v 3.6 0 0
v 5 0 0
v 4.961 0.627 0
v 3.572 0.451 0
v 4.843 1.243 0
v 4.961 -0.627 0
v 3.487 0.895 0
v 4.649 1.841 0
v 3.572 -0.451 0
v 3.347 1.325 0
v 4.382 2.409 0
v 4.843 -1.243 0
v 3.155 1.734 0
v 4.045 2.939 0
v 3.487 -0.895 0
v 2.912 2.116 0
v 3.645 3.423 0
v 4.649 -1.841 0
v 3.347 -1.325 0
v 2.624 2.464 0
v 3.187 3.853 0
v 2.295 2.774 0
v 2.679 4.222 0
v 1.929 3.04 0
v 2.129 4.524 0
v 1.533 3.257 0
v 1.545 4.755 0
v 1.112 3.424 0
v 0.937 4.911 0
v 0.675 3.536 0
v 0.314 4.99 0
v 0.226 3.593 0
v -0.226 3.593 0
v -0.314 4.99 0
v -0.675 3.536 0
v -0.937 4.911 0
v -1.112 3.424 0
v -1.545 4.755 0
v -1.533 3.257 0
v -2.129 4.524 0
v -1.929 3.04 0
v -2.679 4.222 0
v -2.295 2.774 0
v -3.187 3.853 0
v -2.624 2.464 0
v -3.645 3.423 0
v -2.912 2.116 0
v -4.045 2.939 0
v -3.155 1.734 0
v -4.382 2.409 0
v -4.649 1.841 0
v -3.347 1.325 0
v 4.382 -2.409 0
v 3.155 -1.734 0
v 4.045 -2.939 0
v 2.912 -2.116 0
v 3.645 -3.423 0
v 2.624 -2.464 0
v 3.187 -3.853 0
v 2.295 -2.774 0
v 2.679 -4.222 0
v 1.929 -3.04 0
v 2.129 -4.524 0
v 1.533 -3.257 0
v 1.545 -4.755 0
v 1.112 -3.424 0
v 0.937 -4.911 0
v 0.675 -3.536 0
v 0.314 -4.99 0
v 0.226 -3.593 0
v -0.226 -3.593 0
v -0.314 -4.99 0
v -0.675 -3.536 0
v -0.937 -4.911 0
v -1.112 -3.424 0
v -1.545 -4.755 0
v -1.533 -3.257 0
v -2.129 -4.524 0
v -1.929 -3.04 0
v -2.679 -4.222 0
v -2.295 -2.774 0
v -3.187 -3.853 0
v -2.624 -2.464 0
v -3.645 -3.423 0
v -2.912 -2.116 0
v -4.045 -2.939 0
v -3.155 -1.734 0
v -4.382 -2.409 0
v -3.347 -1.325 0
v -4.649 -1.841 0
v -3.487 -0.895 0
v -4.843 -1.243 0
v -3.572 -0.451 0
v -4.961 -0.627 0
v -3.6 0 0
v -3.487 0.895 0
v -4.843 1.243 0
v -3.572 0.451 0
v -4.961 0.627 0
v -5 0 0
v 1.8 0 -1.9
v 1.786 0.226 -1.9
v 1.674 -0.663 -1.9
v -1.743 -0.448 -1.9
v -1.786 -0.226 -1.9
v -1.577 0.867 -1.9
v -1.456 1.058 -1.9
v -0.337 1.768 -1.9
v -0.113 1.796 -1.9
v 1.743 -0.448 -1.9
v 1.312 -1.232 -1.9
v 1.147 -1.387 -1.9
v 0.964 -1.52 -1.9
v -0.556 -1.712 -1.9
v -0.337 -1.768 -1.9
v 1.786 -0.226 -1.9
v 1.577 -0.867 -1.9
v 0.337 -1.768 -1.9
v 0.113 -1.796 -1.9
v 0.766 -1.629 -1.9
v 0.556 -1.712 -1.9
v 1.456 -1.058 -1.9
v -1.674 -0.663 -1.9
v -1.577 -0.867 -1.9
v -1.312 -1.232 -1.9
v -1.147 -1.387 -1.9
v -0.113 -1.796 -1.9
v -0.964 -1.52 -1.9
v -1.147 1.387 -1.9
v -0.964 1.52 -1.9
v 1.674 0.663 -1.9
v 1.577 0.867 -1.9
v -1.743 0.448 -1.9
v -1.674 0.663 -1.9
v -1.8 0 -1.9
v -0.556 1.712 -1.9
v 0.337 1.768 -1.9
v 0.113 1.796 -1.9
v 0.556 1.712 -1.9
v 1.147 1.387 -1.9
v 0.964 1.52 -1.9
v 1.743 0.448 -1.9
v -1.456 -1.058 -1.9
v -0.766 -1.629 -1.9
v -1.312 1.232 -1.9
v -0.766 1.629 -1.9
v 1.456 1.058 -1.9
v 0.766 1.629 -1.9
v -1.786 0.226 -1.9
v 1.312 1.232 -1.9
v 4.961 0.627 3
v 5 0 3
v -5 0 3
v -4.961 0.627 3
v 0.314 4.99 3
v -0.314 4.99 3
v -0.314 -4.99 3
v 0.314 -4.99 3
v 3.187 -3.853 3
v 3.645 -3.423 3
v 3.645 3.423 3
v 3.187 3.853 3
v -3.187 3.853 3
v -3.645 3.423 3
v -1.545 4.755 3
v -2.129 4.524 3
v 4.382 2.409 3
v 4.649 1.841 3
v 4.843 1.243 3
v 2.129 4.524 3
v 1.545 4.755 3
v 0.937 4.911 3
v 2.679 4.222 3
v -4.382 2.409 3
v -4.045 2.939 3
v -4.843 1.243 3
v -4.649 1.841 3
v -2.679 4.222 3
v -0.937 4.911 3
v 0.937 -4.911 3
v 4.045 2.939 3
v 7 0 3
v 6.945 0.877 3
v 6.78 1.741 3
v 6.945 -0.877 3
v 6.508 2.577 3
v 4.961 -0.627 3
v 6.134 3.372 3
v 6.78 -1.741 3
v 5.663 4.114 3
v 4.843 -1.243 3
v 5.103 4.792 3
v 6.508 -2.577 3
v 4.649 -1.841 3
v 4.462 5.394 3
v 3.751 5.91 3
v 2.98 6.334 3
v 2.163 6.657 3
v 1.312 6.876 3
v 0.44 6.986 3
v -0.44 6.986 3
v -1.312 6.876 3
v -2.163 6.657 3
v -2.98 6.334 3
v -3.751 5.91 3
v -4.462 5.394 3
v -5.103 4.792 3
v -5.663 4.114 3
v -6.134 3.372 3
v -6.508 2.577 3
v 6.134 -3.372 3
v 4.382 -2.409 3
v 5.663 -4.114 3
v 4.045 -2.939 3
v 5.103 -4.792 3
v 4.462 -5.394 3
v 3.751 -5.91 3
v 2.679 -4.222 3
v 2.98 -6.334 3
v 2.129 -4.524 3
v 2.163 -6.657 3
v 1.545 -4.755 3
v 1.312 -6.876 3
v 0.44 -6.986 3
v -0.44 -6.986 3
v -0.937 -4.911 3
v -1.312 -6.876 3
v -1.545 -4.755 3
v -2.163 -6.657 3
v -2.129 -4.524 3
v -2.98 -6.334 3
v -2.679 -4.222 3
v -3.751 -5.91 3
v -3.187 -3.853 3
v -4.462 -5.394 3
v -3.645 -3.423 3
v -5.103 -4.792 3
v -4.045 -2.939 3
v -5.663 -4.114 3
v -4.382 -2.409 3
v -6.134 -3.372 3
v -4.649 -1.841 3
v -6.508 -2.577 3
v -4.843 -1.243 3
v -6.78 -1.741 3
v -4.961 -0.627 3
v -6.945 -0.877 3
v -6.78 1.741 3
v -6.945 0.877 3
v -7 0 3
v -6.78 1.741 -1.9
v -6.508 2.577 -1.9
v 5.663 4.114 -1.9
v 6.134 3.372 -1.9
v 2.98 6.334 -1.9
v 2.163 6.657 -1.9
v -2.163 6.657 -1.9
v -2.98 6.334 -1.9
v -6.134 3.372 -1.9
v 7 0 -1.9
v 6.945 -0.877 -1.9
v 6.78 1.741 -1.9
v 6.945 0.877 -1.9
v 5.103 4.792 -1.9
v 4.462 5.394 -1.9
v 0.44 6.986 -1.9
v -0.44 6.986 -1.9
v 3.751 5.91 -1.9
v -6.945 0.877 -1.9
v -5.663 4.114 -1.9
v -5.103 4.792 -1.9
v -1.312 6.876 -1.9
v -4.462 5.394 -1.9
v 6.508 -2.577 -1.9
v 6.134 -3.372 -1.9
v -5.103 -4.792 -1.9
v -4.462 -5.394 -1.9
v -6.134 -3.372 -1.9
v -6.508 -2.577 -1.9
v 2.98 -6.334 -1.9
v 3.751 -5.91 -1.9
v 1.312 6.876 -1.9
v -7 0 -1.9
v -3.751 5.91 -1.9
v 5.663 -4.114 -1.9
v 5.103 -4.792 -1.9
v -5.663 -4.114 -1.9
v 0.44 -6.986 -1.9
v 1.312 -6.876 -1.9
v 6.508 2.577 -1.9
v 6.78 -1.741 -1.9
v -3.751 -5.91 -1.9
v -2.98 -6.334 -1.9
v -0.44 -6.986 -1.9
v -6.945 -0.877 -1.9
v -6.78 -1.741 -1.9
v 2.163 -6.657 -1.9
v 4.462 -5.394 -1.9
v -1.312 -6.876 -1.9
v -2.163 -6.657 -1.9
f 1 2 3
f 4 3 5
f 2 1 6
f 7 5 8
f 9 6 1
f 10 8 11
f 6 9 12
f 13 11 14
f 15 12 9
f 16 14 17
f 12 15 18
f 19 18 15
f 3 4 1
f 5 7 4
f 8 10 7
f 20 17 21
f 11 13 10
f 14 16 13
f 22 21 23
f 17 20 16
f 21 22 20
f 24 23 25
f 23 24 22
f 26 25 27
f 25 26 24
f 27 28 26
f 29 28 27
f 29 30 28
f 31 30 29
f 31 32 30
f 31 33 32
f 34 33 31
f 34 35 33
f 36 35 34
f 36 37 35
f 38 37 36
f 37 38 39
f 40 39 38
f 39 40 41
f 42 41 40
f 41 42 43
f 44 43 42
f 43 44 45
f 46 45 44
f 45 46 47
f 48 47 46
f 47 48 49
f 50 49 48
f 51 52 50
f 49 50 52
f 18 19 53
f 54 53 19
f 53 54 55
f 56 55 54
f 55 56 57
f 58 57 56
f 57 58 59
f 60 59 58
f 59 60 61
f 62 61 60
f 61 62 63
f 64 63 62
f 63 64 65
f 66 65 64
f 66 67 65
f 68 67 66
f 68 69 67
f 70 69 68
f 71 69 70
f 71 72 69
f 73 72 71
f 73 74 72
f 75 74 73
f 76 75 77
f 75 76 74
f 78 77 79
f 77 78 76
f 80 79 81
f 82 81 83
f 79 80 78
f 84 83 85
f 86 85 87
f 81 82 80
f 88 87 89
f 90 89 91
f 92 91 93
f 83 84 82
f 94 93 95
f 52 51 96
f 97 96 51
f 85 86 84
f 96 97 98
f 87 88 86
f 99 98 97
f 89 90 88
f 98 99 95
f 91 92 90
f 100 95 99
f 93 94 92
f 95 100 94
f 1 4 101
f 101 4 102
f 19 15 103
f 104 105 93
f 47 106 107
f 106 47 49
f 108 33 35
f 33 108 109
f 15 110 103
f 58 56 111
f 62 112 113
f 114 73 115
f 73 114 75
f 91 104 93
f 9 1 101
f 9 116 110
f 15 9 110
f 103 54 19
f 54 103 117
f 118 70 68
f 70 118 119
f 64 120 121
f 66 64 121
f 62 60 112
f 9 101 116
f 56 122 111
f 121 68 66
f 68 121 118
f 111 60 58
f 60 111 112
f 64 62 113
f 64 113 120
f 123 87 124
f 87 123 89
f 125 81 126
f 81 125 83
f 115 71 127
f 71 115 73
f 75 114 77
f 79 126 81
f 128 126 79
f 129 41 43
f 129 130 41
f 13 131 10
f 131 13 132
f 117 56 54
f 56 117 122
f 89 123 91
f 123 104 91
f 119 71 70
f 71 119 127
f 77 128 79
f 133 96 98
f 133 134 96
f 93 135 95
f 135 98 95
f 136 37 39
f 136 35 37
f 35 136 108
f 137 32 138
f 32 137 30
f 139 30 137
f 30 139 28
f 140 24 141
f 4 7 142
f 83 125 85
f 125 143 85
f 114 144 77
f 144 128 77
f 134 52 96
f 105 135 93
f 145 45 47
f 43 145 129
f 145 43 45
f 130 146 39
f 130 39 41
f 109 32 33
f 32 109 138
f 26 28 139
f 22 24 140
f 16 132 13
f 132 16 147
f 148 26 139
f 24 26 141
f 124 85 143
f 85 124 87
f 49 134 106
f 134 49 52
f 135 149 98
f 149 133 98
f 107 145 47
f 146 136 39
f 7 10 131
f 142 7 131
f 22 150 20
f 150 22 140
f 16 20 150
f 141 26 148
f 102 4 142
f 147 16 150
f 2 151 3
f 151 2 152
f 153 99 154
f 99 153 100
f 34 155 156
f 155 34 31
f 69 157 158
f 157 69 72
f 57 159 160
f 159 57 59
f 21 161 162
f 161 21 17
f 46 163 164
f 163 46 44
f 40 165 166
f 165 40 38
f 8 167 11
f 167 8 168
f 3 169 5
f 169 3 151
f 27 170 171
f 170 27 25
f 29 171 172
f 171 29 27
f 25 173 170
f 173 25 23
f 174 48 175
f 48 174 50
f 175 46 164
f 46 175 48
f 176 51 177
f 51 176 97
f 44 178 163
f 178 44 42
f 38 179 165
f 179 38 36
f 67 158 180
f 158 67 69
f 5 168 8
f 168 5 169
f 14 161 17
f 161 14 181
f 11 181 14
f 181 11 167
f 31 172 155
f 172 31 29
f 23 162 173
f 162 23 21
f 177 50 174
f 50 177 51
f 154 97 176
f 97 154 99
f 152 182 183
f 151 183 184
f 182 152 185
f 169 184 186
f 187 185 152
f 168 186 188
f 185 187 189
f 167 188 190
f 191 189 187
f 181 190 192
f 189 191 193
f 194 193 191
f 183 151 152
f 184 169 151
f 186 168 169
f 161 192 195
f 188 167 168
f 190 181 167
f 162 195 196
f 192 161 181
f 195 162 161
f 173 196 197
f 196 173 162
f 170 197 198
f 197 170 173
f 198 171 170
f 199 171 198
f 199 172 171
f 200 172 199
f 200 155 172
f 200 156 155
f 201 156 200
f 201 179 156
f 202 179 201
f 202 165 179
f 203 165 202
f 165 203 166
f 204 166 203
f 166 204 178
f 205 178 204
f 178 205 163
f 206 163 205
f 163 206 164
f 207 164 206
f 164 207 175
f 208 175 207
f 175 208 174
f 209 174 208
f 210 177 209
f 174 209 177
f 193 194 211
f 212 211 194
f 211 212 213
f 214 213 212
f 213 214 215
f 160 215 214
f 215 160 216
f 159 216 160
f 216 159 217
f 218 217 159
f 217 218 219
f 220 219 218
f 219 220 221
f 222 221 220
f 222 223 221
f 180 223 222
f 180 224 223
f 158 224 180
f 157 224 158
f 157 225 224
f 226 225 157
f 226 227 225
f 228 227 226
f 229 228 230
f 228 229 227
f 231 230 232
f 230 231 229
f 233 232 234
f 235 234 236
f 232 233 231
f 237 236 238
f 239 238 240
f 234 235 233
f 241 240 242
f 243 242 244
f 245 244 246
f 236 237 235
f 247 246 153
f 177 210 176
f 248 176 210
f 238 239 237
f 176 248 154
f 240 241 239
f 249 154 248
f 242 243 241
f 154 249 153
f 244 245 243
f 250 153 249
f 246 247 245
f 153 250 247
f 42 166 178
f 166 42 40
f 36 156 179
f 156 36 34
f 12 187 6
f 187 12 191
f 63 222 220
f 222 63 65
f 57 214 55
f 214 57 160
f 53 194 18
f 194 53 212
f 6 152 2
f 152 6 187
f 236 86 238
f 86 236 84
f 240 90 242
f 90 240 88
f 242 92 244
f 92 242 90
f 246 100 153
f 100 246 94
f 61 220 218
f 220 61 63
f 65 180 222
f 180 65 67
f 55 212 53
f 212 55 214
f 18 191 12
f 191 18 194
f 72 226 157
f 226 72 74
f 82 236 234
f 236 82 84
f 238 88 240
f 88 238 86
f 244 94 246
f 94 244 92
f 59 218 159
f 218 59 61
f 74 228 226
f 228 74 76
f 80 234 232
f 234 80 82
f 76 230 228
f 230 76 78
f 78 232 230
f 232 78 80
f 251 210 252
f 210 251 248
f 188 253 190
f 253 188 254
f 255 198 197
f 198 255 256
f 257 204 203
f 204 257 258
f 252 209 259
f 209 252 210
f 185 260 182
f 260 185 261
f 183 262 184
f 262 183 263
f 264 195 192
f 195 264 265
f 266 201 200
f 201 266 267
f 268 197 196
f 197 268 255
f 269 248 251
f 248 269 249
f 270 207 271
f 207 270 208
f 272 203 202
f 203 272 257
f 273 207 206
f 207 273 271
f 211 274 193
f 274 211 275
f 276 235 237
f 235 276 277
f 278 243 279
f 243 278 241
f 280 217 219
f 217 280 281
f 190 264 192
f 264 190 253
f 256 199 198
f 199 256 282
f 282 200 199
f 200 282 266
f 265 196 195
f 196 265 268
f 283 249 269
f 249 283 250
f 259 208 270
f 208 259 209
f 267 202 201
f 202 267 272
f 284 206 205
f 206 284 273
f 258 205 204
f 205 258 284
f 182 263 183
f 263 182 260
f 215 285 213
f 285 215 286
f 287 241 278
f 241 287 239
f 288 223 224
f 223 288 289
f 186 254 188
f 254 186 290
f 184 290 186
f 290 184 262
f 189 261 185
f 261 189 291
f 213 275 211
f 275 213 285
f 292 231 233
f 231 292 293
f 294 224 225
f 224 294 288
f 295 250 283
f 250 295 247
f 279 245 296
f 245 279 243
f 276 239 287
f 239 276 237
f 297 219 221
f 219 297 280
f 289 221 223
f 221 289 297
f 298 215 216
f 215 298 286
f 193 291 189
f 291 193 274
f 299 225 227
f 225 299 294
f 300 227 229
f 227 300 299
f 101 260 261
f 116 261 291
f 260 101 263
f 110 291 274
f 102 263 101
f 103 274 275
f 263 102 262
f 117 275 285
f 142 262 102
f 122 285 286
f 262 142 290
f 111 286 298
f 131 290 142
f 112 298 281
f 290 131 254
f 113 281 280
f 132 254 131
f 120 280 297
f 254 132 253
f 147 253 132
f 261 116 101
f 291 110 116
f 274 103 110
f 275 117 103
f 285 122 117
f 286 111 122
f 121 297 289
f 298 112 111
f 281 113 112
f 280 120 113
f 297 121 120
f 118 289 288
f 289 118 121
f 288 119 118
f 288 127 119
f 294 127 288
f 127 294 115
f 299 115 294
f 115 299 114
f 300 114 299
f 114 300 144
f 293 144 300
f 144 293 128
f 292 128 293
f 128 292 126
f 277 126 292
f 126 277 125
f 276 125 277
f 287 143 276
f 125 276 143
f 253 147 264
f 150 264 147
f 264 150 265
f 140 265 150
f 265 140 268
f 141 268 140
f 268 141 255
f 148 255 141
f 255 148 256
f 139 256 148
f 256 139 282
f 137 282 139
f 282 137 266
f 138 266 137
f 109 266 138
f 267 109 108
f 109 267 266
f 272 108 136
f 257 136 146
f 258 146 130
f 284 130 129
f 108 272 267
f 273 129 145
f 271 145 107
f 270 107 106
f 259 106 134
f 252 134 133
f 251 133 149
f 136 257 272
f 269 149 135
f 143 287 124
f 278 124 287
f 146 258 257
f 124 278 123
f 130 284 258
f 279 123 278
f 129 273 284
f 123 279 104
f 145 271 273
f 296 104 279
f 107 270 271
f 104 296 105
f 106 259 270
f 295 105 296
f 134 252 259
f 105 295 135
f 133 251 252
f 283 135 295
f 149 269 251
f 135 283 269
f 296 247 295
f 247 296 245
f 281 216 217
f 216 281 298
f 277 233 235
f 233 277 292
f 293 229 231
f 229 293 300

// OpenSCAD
$fn = 50;


difference() {
	union() {
		translate(v = [0, 0, -1.9000000000]) {
			cylinder(h = 4.9000000000, r = 7.0000000000);
		}
	}
	union() {
		translate(v = [0, 0, 0]) {
			rotate(a = [0, 0, 0]) {
				difference() {
					union() {
						translate(v = [0, 0, -4.9000000000]) {
							cylinder(h = 4.9000000000, r = 1.5000000000);
						}
						translate(v = [0, 0, -1.9000000000]) {
							cylinder(h = 1.9000000000, r1 = 1.8000000000, r2 = 3.6000000000);
						}
						translate(v = [0, 0, -4.9000000000]) {
							cylinder(h = 4.9000000000, r = 1.8000000000);
						}
						translate(v = [0, 0, -4.9000000000]) {
							cylinder(h = 4.9000000000, r = 1.5000000000);
						}
					}
					union();
				}
			}
		}
		#cylinder(h = 3, r = 5.0000000000);
	}
}
